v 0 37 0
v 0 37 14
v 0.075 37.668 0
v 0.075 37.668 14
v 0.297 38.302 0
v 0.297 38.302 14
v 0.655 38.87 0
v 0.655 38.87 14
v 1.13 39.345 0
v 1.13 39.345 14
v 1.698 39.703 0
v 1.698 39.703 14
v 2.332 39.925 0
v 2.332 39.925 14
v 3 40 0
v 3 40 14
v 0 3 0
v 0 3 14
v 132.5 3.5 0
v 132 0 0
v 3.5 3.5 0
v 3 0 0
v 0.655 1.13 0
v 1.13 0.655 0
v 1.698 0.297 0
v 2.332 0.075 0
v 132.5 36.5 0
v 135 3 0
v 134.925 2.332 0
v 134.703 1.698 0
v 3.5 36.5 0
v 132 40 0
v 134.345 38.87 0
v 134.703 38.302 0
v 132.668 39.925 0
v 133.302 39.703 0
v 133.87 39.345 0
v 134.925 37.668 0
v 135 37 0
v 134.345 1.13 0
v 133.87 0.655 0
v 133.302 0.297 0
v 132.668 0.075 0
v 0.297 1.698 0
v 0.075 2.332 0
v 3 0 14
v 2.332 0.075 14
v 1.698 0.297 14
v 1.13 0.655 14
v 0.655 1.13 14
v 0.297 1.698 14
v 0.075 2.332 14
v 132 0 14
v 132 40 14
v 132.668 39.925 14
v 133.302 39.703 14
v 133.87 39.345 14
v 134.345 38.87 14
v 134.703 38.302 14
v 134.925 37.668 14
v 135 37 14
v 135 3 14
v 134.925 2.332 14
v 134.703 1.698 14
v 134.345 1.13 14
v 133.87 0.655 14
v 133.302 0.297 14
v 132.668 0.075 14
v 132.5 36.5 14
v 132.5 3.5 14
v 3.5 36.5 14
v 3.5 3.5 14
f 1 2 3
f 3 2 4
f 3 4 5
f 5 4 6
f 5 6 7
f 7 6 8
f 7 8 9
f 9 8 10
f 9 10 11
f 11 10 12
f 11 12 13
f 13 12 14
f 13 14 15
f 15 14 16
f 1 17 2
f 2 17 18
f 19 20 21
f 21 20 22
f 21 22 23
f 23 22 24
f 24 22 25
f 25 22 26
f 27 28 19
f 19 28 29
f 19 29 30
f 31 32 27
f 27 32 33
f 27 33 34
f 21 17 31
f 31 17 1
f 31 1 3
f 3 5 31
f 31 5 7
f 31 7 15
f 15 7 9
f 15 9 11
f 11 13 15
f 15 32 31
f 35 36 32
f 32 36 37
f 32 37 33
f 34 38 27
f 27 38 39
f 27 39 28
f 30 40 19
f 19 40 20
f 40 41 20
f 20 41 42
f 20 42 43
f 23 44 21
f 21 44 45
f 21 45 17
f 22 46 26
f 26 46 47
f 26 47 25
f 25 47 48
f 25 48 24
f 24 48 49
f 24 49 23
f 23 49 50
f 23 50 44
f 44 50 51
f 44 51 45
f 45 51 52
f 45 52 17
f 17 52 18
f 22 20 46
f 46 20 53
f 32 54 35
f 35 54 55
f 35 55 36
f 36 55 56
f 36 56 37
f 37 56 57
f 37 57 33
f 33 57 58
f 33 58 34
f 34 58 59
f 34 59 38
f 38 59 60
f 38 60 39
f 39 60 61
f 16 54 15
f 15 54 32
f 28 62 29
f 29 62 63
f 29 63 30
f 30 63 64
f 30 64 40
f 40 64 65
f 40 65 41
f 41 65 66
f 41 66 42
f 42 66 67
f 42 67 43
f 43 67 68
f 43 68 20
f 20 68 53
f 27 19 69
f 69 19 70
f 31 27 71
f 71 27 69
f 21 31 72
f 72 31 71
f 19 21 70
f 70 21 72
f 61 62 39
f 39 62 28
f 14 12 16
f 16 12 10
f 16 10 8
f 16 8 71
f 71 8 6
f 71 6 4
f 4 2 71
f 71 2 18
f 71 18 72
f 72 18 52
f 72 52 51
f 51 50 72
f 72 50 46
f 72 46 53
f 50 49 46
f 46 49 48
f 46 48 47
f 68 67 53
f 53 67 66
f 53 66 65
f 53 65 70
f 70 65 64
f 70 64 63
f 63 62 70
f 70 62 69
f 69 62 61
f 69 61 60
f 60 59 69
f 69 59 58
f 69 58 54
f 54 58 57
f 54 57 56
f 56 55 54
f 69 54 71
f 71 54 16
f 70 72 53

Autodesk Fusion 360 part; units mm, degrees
sketch "Sketch1" plane through (0, 0, 0) normal (0, 0, 1) x (1, 0, 0)
  line L0 (0, 0) -> (135, 0)
  line L1 (135, 0) -> (135, 40)
  line L2 (135, 40) -> (0, 40)
  line L3 (0, 40) -> (0, 0)
  line L4 (3.5, 36.5) -> (132.5, 36.5)
  line L5 (132.5, 36.5) -> (132.5, 3.5)
  line L6 (132.5, 3.5) -> (3.5, 3.5)
  line L7 (3.5, 3.5) -> (3.5, 36.5)
  dimension "d1" = 135
  dimension "d2" = 129
  dimension "d3" = 33
  dimension "d4" = 40
  dimension "d5" = 3.5
  dimension "d6" = 3.5
extrude "Extrude2" add sketch "Sketch1" along normal blind 14
fillet "Fillet2" radius 3 4 edges at (135, 0, 7) (135, 40, 7) (0, 0, 7) (0, 40, 7)
extrude "Extrude1" [suppressed]
fillet "Fillet1" [suppressed]
